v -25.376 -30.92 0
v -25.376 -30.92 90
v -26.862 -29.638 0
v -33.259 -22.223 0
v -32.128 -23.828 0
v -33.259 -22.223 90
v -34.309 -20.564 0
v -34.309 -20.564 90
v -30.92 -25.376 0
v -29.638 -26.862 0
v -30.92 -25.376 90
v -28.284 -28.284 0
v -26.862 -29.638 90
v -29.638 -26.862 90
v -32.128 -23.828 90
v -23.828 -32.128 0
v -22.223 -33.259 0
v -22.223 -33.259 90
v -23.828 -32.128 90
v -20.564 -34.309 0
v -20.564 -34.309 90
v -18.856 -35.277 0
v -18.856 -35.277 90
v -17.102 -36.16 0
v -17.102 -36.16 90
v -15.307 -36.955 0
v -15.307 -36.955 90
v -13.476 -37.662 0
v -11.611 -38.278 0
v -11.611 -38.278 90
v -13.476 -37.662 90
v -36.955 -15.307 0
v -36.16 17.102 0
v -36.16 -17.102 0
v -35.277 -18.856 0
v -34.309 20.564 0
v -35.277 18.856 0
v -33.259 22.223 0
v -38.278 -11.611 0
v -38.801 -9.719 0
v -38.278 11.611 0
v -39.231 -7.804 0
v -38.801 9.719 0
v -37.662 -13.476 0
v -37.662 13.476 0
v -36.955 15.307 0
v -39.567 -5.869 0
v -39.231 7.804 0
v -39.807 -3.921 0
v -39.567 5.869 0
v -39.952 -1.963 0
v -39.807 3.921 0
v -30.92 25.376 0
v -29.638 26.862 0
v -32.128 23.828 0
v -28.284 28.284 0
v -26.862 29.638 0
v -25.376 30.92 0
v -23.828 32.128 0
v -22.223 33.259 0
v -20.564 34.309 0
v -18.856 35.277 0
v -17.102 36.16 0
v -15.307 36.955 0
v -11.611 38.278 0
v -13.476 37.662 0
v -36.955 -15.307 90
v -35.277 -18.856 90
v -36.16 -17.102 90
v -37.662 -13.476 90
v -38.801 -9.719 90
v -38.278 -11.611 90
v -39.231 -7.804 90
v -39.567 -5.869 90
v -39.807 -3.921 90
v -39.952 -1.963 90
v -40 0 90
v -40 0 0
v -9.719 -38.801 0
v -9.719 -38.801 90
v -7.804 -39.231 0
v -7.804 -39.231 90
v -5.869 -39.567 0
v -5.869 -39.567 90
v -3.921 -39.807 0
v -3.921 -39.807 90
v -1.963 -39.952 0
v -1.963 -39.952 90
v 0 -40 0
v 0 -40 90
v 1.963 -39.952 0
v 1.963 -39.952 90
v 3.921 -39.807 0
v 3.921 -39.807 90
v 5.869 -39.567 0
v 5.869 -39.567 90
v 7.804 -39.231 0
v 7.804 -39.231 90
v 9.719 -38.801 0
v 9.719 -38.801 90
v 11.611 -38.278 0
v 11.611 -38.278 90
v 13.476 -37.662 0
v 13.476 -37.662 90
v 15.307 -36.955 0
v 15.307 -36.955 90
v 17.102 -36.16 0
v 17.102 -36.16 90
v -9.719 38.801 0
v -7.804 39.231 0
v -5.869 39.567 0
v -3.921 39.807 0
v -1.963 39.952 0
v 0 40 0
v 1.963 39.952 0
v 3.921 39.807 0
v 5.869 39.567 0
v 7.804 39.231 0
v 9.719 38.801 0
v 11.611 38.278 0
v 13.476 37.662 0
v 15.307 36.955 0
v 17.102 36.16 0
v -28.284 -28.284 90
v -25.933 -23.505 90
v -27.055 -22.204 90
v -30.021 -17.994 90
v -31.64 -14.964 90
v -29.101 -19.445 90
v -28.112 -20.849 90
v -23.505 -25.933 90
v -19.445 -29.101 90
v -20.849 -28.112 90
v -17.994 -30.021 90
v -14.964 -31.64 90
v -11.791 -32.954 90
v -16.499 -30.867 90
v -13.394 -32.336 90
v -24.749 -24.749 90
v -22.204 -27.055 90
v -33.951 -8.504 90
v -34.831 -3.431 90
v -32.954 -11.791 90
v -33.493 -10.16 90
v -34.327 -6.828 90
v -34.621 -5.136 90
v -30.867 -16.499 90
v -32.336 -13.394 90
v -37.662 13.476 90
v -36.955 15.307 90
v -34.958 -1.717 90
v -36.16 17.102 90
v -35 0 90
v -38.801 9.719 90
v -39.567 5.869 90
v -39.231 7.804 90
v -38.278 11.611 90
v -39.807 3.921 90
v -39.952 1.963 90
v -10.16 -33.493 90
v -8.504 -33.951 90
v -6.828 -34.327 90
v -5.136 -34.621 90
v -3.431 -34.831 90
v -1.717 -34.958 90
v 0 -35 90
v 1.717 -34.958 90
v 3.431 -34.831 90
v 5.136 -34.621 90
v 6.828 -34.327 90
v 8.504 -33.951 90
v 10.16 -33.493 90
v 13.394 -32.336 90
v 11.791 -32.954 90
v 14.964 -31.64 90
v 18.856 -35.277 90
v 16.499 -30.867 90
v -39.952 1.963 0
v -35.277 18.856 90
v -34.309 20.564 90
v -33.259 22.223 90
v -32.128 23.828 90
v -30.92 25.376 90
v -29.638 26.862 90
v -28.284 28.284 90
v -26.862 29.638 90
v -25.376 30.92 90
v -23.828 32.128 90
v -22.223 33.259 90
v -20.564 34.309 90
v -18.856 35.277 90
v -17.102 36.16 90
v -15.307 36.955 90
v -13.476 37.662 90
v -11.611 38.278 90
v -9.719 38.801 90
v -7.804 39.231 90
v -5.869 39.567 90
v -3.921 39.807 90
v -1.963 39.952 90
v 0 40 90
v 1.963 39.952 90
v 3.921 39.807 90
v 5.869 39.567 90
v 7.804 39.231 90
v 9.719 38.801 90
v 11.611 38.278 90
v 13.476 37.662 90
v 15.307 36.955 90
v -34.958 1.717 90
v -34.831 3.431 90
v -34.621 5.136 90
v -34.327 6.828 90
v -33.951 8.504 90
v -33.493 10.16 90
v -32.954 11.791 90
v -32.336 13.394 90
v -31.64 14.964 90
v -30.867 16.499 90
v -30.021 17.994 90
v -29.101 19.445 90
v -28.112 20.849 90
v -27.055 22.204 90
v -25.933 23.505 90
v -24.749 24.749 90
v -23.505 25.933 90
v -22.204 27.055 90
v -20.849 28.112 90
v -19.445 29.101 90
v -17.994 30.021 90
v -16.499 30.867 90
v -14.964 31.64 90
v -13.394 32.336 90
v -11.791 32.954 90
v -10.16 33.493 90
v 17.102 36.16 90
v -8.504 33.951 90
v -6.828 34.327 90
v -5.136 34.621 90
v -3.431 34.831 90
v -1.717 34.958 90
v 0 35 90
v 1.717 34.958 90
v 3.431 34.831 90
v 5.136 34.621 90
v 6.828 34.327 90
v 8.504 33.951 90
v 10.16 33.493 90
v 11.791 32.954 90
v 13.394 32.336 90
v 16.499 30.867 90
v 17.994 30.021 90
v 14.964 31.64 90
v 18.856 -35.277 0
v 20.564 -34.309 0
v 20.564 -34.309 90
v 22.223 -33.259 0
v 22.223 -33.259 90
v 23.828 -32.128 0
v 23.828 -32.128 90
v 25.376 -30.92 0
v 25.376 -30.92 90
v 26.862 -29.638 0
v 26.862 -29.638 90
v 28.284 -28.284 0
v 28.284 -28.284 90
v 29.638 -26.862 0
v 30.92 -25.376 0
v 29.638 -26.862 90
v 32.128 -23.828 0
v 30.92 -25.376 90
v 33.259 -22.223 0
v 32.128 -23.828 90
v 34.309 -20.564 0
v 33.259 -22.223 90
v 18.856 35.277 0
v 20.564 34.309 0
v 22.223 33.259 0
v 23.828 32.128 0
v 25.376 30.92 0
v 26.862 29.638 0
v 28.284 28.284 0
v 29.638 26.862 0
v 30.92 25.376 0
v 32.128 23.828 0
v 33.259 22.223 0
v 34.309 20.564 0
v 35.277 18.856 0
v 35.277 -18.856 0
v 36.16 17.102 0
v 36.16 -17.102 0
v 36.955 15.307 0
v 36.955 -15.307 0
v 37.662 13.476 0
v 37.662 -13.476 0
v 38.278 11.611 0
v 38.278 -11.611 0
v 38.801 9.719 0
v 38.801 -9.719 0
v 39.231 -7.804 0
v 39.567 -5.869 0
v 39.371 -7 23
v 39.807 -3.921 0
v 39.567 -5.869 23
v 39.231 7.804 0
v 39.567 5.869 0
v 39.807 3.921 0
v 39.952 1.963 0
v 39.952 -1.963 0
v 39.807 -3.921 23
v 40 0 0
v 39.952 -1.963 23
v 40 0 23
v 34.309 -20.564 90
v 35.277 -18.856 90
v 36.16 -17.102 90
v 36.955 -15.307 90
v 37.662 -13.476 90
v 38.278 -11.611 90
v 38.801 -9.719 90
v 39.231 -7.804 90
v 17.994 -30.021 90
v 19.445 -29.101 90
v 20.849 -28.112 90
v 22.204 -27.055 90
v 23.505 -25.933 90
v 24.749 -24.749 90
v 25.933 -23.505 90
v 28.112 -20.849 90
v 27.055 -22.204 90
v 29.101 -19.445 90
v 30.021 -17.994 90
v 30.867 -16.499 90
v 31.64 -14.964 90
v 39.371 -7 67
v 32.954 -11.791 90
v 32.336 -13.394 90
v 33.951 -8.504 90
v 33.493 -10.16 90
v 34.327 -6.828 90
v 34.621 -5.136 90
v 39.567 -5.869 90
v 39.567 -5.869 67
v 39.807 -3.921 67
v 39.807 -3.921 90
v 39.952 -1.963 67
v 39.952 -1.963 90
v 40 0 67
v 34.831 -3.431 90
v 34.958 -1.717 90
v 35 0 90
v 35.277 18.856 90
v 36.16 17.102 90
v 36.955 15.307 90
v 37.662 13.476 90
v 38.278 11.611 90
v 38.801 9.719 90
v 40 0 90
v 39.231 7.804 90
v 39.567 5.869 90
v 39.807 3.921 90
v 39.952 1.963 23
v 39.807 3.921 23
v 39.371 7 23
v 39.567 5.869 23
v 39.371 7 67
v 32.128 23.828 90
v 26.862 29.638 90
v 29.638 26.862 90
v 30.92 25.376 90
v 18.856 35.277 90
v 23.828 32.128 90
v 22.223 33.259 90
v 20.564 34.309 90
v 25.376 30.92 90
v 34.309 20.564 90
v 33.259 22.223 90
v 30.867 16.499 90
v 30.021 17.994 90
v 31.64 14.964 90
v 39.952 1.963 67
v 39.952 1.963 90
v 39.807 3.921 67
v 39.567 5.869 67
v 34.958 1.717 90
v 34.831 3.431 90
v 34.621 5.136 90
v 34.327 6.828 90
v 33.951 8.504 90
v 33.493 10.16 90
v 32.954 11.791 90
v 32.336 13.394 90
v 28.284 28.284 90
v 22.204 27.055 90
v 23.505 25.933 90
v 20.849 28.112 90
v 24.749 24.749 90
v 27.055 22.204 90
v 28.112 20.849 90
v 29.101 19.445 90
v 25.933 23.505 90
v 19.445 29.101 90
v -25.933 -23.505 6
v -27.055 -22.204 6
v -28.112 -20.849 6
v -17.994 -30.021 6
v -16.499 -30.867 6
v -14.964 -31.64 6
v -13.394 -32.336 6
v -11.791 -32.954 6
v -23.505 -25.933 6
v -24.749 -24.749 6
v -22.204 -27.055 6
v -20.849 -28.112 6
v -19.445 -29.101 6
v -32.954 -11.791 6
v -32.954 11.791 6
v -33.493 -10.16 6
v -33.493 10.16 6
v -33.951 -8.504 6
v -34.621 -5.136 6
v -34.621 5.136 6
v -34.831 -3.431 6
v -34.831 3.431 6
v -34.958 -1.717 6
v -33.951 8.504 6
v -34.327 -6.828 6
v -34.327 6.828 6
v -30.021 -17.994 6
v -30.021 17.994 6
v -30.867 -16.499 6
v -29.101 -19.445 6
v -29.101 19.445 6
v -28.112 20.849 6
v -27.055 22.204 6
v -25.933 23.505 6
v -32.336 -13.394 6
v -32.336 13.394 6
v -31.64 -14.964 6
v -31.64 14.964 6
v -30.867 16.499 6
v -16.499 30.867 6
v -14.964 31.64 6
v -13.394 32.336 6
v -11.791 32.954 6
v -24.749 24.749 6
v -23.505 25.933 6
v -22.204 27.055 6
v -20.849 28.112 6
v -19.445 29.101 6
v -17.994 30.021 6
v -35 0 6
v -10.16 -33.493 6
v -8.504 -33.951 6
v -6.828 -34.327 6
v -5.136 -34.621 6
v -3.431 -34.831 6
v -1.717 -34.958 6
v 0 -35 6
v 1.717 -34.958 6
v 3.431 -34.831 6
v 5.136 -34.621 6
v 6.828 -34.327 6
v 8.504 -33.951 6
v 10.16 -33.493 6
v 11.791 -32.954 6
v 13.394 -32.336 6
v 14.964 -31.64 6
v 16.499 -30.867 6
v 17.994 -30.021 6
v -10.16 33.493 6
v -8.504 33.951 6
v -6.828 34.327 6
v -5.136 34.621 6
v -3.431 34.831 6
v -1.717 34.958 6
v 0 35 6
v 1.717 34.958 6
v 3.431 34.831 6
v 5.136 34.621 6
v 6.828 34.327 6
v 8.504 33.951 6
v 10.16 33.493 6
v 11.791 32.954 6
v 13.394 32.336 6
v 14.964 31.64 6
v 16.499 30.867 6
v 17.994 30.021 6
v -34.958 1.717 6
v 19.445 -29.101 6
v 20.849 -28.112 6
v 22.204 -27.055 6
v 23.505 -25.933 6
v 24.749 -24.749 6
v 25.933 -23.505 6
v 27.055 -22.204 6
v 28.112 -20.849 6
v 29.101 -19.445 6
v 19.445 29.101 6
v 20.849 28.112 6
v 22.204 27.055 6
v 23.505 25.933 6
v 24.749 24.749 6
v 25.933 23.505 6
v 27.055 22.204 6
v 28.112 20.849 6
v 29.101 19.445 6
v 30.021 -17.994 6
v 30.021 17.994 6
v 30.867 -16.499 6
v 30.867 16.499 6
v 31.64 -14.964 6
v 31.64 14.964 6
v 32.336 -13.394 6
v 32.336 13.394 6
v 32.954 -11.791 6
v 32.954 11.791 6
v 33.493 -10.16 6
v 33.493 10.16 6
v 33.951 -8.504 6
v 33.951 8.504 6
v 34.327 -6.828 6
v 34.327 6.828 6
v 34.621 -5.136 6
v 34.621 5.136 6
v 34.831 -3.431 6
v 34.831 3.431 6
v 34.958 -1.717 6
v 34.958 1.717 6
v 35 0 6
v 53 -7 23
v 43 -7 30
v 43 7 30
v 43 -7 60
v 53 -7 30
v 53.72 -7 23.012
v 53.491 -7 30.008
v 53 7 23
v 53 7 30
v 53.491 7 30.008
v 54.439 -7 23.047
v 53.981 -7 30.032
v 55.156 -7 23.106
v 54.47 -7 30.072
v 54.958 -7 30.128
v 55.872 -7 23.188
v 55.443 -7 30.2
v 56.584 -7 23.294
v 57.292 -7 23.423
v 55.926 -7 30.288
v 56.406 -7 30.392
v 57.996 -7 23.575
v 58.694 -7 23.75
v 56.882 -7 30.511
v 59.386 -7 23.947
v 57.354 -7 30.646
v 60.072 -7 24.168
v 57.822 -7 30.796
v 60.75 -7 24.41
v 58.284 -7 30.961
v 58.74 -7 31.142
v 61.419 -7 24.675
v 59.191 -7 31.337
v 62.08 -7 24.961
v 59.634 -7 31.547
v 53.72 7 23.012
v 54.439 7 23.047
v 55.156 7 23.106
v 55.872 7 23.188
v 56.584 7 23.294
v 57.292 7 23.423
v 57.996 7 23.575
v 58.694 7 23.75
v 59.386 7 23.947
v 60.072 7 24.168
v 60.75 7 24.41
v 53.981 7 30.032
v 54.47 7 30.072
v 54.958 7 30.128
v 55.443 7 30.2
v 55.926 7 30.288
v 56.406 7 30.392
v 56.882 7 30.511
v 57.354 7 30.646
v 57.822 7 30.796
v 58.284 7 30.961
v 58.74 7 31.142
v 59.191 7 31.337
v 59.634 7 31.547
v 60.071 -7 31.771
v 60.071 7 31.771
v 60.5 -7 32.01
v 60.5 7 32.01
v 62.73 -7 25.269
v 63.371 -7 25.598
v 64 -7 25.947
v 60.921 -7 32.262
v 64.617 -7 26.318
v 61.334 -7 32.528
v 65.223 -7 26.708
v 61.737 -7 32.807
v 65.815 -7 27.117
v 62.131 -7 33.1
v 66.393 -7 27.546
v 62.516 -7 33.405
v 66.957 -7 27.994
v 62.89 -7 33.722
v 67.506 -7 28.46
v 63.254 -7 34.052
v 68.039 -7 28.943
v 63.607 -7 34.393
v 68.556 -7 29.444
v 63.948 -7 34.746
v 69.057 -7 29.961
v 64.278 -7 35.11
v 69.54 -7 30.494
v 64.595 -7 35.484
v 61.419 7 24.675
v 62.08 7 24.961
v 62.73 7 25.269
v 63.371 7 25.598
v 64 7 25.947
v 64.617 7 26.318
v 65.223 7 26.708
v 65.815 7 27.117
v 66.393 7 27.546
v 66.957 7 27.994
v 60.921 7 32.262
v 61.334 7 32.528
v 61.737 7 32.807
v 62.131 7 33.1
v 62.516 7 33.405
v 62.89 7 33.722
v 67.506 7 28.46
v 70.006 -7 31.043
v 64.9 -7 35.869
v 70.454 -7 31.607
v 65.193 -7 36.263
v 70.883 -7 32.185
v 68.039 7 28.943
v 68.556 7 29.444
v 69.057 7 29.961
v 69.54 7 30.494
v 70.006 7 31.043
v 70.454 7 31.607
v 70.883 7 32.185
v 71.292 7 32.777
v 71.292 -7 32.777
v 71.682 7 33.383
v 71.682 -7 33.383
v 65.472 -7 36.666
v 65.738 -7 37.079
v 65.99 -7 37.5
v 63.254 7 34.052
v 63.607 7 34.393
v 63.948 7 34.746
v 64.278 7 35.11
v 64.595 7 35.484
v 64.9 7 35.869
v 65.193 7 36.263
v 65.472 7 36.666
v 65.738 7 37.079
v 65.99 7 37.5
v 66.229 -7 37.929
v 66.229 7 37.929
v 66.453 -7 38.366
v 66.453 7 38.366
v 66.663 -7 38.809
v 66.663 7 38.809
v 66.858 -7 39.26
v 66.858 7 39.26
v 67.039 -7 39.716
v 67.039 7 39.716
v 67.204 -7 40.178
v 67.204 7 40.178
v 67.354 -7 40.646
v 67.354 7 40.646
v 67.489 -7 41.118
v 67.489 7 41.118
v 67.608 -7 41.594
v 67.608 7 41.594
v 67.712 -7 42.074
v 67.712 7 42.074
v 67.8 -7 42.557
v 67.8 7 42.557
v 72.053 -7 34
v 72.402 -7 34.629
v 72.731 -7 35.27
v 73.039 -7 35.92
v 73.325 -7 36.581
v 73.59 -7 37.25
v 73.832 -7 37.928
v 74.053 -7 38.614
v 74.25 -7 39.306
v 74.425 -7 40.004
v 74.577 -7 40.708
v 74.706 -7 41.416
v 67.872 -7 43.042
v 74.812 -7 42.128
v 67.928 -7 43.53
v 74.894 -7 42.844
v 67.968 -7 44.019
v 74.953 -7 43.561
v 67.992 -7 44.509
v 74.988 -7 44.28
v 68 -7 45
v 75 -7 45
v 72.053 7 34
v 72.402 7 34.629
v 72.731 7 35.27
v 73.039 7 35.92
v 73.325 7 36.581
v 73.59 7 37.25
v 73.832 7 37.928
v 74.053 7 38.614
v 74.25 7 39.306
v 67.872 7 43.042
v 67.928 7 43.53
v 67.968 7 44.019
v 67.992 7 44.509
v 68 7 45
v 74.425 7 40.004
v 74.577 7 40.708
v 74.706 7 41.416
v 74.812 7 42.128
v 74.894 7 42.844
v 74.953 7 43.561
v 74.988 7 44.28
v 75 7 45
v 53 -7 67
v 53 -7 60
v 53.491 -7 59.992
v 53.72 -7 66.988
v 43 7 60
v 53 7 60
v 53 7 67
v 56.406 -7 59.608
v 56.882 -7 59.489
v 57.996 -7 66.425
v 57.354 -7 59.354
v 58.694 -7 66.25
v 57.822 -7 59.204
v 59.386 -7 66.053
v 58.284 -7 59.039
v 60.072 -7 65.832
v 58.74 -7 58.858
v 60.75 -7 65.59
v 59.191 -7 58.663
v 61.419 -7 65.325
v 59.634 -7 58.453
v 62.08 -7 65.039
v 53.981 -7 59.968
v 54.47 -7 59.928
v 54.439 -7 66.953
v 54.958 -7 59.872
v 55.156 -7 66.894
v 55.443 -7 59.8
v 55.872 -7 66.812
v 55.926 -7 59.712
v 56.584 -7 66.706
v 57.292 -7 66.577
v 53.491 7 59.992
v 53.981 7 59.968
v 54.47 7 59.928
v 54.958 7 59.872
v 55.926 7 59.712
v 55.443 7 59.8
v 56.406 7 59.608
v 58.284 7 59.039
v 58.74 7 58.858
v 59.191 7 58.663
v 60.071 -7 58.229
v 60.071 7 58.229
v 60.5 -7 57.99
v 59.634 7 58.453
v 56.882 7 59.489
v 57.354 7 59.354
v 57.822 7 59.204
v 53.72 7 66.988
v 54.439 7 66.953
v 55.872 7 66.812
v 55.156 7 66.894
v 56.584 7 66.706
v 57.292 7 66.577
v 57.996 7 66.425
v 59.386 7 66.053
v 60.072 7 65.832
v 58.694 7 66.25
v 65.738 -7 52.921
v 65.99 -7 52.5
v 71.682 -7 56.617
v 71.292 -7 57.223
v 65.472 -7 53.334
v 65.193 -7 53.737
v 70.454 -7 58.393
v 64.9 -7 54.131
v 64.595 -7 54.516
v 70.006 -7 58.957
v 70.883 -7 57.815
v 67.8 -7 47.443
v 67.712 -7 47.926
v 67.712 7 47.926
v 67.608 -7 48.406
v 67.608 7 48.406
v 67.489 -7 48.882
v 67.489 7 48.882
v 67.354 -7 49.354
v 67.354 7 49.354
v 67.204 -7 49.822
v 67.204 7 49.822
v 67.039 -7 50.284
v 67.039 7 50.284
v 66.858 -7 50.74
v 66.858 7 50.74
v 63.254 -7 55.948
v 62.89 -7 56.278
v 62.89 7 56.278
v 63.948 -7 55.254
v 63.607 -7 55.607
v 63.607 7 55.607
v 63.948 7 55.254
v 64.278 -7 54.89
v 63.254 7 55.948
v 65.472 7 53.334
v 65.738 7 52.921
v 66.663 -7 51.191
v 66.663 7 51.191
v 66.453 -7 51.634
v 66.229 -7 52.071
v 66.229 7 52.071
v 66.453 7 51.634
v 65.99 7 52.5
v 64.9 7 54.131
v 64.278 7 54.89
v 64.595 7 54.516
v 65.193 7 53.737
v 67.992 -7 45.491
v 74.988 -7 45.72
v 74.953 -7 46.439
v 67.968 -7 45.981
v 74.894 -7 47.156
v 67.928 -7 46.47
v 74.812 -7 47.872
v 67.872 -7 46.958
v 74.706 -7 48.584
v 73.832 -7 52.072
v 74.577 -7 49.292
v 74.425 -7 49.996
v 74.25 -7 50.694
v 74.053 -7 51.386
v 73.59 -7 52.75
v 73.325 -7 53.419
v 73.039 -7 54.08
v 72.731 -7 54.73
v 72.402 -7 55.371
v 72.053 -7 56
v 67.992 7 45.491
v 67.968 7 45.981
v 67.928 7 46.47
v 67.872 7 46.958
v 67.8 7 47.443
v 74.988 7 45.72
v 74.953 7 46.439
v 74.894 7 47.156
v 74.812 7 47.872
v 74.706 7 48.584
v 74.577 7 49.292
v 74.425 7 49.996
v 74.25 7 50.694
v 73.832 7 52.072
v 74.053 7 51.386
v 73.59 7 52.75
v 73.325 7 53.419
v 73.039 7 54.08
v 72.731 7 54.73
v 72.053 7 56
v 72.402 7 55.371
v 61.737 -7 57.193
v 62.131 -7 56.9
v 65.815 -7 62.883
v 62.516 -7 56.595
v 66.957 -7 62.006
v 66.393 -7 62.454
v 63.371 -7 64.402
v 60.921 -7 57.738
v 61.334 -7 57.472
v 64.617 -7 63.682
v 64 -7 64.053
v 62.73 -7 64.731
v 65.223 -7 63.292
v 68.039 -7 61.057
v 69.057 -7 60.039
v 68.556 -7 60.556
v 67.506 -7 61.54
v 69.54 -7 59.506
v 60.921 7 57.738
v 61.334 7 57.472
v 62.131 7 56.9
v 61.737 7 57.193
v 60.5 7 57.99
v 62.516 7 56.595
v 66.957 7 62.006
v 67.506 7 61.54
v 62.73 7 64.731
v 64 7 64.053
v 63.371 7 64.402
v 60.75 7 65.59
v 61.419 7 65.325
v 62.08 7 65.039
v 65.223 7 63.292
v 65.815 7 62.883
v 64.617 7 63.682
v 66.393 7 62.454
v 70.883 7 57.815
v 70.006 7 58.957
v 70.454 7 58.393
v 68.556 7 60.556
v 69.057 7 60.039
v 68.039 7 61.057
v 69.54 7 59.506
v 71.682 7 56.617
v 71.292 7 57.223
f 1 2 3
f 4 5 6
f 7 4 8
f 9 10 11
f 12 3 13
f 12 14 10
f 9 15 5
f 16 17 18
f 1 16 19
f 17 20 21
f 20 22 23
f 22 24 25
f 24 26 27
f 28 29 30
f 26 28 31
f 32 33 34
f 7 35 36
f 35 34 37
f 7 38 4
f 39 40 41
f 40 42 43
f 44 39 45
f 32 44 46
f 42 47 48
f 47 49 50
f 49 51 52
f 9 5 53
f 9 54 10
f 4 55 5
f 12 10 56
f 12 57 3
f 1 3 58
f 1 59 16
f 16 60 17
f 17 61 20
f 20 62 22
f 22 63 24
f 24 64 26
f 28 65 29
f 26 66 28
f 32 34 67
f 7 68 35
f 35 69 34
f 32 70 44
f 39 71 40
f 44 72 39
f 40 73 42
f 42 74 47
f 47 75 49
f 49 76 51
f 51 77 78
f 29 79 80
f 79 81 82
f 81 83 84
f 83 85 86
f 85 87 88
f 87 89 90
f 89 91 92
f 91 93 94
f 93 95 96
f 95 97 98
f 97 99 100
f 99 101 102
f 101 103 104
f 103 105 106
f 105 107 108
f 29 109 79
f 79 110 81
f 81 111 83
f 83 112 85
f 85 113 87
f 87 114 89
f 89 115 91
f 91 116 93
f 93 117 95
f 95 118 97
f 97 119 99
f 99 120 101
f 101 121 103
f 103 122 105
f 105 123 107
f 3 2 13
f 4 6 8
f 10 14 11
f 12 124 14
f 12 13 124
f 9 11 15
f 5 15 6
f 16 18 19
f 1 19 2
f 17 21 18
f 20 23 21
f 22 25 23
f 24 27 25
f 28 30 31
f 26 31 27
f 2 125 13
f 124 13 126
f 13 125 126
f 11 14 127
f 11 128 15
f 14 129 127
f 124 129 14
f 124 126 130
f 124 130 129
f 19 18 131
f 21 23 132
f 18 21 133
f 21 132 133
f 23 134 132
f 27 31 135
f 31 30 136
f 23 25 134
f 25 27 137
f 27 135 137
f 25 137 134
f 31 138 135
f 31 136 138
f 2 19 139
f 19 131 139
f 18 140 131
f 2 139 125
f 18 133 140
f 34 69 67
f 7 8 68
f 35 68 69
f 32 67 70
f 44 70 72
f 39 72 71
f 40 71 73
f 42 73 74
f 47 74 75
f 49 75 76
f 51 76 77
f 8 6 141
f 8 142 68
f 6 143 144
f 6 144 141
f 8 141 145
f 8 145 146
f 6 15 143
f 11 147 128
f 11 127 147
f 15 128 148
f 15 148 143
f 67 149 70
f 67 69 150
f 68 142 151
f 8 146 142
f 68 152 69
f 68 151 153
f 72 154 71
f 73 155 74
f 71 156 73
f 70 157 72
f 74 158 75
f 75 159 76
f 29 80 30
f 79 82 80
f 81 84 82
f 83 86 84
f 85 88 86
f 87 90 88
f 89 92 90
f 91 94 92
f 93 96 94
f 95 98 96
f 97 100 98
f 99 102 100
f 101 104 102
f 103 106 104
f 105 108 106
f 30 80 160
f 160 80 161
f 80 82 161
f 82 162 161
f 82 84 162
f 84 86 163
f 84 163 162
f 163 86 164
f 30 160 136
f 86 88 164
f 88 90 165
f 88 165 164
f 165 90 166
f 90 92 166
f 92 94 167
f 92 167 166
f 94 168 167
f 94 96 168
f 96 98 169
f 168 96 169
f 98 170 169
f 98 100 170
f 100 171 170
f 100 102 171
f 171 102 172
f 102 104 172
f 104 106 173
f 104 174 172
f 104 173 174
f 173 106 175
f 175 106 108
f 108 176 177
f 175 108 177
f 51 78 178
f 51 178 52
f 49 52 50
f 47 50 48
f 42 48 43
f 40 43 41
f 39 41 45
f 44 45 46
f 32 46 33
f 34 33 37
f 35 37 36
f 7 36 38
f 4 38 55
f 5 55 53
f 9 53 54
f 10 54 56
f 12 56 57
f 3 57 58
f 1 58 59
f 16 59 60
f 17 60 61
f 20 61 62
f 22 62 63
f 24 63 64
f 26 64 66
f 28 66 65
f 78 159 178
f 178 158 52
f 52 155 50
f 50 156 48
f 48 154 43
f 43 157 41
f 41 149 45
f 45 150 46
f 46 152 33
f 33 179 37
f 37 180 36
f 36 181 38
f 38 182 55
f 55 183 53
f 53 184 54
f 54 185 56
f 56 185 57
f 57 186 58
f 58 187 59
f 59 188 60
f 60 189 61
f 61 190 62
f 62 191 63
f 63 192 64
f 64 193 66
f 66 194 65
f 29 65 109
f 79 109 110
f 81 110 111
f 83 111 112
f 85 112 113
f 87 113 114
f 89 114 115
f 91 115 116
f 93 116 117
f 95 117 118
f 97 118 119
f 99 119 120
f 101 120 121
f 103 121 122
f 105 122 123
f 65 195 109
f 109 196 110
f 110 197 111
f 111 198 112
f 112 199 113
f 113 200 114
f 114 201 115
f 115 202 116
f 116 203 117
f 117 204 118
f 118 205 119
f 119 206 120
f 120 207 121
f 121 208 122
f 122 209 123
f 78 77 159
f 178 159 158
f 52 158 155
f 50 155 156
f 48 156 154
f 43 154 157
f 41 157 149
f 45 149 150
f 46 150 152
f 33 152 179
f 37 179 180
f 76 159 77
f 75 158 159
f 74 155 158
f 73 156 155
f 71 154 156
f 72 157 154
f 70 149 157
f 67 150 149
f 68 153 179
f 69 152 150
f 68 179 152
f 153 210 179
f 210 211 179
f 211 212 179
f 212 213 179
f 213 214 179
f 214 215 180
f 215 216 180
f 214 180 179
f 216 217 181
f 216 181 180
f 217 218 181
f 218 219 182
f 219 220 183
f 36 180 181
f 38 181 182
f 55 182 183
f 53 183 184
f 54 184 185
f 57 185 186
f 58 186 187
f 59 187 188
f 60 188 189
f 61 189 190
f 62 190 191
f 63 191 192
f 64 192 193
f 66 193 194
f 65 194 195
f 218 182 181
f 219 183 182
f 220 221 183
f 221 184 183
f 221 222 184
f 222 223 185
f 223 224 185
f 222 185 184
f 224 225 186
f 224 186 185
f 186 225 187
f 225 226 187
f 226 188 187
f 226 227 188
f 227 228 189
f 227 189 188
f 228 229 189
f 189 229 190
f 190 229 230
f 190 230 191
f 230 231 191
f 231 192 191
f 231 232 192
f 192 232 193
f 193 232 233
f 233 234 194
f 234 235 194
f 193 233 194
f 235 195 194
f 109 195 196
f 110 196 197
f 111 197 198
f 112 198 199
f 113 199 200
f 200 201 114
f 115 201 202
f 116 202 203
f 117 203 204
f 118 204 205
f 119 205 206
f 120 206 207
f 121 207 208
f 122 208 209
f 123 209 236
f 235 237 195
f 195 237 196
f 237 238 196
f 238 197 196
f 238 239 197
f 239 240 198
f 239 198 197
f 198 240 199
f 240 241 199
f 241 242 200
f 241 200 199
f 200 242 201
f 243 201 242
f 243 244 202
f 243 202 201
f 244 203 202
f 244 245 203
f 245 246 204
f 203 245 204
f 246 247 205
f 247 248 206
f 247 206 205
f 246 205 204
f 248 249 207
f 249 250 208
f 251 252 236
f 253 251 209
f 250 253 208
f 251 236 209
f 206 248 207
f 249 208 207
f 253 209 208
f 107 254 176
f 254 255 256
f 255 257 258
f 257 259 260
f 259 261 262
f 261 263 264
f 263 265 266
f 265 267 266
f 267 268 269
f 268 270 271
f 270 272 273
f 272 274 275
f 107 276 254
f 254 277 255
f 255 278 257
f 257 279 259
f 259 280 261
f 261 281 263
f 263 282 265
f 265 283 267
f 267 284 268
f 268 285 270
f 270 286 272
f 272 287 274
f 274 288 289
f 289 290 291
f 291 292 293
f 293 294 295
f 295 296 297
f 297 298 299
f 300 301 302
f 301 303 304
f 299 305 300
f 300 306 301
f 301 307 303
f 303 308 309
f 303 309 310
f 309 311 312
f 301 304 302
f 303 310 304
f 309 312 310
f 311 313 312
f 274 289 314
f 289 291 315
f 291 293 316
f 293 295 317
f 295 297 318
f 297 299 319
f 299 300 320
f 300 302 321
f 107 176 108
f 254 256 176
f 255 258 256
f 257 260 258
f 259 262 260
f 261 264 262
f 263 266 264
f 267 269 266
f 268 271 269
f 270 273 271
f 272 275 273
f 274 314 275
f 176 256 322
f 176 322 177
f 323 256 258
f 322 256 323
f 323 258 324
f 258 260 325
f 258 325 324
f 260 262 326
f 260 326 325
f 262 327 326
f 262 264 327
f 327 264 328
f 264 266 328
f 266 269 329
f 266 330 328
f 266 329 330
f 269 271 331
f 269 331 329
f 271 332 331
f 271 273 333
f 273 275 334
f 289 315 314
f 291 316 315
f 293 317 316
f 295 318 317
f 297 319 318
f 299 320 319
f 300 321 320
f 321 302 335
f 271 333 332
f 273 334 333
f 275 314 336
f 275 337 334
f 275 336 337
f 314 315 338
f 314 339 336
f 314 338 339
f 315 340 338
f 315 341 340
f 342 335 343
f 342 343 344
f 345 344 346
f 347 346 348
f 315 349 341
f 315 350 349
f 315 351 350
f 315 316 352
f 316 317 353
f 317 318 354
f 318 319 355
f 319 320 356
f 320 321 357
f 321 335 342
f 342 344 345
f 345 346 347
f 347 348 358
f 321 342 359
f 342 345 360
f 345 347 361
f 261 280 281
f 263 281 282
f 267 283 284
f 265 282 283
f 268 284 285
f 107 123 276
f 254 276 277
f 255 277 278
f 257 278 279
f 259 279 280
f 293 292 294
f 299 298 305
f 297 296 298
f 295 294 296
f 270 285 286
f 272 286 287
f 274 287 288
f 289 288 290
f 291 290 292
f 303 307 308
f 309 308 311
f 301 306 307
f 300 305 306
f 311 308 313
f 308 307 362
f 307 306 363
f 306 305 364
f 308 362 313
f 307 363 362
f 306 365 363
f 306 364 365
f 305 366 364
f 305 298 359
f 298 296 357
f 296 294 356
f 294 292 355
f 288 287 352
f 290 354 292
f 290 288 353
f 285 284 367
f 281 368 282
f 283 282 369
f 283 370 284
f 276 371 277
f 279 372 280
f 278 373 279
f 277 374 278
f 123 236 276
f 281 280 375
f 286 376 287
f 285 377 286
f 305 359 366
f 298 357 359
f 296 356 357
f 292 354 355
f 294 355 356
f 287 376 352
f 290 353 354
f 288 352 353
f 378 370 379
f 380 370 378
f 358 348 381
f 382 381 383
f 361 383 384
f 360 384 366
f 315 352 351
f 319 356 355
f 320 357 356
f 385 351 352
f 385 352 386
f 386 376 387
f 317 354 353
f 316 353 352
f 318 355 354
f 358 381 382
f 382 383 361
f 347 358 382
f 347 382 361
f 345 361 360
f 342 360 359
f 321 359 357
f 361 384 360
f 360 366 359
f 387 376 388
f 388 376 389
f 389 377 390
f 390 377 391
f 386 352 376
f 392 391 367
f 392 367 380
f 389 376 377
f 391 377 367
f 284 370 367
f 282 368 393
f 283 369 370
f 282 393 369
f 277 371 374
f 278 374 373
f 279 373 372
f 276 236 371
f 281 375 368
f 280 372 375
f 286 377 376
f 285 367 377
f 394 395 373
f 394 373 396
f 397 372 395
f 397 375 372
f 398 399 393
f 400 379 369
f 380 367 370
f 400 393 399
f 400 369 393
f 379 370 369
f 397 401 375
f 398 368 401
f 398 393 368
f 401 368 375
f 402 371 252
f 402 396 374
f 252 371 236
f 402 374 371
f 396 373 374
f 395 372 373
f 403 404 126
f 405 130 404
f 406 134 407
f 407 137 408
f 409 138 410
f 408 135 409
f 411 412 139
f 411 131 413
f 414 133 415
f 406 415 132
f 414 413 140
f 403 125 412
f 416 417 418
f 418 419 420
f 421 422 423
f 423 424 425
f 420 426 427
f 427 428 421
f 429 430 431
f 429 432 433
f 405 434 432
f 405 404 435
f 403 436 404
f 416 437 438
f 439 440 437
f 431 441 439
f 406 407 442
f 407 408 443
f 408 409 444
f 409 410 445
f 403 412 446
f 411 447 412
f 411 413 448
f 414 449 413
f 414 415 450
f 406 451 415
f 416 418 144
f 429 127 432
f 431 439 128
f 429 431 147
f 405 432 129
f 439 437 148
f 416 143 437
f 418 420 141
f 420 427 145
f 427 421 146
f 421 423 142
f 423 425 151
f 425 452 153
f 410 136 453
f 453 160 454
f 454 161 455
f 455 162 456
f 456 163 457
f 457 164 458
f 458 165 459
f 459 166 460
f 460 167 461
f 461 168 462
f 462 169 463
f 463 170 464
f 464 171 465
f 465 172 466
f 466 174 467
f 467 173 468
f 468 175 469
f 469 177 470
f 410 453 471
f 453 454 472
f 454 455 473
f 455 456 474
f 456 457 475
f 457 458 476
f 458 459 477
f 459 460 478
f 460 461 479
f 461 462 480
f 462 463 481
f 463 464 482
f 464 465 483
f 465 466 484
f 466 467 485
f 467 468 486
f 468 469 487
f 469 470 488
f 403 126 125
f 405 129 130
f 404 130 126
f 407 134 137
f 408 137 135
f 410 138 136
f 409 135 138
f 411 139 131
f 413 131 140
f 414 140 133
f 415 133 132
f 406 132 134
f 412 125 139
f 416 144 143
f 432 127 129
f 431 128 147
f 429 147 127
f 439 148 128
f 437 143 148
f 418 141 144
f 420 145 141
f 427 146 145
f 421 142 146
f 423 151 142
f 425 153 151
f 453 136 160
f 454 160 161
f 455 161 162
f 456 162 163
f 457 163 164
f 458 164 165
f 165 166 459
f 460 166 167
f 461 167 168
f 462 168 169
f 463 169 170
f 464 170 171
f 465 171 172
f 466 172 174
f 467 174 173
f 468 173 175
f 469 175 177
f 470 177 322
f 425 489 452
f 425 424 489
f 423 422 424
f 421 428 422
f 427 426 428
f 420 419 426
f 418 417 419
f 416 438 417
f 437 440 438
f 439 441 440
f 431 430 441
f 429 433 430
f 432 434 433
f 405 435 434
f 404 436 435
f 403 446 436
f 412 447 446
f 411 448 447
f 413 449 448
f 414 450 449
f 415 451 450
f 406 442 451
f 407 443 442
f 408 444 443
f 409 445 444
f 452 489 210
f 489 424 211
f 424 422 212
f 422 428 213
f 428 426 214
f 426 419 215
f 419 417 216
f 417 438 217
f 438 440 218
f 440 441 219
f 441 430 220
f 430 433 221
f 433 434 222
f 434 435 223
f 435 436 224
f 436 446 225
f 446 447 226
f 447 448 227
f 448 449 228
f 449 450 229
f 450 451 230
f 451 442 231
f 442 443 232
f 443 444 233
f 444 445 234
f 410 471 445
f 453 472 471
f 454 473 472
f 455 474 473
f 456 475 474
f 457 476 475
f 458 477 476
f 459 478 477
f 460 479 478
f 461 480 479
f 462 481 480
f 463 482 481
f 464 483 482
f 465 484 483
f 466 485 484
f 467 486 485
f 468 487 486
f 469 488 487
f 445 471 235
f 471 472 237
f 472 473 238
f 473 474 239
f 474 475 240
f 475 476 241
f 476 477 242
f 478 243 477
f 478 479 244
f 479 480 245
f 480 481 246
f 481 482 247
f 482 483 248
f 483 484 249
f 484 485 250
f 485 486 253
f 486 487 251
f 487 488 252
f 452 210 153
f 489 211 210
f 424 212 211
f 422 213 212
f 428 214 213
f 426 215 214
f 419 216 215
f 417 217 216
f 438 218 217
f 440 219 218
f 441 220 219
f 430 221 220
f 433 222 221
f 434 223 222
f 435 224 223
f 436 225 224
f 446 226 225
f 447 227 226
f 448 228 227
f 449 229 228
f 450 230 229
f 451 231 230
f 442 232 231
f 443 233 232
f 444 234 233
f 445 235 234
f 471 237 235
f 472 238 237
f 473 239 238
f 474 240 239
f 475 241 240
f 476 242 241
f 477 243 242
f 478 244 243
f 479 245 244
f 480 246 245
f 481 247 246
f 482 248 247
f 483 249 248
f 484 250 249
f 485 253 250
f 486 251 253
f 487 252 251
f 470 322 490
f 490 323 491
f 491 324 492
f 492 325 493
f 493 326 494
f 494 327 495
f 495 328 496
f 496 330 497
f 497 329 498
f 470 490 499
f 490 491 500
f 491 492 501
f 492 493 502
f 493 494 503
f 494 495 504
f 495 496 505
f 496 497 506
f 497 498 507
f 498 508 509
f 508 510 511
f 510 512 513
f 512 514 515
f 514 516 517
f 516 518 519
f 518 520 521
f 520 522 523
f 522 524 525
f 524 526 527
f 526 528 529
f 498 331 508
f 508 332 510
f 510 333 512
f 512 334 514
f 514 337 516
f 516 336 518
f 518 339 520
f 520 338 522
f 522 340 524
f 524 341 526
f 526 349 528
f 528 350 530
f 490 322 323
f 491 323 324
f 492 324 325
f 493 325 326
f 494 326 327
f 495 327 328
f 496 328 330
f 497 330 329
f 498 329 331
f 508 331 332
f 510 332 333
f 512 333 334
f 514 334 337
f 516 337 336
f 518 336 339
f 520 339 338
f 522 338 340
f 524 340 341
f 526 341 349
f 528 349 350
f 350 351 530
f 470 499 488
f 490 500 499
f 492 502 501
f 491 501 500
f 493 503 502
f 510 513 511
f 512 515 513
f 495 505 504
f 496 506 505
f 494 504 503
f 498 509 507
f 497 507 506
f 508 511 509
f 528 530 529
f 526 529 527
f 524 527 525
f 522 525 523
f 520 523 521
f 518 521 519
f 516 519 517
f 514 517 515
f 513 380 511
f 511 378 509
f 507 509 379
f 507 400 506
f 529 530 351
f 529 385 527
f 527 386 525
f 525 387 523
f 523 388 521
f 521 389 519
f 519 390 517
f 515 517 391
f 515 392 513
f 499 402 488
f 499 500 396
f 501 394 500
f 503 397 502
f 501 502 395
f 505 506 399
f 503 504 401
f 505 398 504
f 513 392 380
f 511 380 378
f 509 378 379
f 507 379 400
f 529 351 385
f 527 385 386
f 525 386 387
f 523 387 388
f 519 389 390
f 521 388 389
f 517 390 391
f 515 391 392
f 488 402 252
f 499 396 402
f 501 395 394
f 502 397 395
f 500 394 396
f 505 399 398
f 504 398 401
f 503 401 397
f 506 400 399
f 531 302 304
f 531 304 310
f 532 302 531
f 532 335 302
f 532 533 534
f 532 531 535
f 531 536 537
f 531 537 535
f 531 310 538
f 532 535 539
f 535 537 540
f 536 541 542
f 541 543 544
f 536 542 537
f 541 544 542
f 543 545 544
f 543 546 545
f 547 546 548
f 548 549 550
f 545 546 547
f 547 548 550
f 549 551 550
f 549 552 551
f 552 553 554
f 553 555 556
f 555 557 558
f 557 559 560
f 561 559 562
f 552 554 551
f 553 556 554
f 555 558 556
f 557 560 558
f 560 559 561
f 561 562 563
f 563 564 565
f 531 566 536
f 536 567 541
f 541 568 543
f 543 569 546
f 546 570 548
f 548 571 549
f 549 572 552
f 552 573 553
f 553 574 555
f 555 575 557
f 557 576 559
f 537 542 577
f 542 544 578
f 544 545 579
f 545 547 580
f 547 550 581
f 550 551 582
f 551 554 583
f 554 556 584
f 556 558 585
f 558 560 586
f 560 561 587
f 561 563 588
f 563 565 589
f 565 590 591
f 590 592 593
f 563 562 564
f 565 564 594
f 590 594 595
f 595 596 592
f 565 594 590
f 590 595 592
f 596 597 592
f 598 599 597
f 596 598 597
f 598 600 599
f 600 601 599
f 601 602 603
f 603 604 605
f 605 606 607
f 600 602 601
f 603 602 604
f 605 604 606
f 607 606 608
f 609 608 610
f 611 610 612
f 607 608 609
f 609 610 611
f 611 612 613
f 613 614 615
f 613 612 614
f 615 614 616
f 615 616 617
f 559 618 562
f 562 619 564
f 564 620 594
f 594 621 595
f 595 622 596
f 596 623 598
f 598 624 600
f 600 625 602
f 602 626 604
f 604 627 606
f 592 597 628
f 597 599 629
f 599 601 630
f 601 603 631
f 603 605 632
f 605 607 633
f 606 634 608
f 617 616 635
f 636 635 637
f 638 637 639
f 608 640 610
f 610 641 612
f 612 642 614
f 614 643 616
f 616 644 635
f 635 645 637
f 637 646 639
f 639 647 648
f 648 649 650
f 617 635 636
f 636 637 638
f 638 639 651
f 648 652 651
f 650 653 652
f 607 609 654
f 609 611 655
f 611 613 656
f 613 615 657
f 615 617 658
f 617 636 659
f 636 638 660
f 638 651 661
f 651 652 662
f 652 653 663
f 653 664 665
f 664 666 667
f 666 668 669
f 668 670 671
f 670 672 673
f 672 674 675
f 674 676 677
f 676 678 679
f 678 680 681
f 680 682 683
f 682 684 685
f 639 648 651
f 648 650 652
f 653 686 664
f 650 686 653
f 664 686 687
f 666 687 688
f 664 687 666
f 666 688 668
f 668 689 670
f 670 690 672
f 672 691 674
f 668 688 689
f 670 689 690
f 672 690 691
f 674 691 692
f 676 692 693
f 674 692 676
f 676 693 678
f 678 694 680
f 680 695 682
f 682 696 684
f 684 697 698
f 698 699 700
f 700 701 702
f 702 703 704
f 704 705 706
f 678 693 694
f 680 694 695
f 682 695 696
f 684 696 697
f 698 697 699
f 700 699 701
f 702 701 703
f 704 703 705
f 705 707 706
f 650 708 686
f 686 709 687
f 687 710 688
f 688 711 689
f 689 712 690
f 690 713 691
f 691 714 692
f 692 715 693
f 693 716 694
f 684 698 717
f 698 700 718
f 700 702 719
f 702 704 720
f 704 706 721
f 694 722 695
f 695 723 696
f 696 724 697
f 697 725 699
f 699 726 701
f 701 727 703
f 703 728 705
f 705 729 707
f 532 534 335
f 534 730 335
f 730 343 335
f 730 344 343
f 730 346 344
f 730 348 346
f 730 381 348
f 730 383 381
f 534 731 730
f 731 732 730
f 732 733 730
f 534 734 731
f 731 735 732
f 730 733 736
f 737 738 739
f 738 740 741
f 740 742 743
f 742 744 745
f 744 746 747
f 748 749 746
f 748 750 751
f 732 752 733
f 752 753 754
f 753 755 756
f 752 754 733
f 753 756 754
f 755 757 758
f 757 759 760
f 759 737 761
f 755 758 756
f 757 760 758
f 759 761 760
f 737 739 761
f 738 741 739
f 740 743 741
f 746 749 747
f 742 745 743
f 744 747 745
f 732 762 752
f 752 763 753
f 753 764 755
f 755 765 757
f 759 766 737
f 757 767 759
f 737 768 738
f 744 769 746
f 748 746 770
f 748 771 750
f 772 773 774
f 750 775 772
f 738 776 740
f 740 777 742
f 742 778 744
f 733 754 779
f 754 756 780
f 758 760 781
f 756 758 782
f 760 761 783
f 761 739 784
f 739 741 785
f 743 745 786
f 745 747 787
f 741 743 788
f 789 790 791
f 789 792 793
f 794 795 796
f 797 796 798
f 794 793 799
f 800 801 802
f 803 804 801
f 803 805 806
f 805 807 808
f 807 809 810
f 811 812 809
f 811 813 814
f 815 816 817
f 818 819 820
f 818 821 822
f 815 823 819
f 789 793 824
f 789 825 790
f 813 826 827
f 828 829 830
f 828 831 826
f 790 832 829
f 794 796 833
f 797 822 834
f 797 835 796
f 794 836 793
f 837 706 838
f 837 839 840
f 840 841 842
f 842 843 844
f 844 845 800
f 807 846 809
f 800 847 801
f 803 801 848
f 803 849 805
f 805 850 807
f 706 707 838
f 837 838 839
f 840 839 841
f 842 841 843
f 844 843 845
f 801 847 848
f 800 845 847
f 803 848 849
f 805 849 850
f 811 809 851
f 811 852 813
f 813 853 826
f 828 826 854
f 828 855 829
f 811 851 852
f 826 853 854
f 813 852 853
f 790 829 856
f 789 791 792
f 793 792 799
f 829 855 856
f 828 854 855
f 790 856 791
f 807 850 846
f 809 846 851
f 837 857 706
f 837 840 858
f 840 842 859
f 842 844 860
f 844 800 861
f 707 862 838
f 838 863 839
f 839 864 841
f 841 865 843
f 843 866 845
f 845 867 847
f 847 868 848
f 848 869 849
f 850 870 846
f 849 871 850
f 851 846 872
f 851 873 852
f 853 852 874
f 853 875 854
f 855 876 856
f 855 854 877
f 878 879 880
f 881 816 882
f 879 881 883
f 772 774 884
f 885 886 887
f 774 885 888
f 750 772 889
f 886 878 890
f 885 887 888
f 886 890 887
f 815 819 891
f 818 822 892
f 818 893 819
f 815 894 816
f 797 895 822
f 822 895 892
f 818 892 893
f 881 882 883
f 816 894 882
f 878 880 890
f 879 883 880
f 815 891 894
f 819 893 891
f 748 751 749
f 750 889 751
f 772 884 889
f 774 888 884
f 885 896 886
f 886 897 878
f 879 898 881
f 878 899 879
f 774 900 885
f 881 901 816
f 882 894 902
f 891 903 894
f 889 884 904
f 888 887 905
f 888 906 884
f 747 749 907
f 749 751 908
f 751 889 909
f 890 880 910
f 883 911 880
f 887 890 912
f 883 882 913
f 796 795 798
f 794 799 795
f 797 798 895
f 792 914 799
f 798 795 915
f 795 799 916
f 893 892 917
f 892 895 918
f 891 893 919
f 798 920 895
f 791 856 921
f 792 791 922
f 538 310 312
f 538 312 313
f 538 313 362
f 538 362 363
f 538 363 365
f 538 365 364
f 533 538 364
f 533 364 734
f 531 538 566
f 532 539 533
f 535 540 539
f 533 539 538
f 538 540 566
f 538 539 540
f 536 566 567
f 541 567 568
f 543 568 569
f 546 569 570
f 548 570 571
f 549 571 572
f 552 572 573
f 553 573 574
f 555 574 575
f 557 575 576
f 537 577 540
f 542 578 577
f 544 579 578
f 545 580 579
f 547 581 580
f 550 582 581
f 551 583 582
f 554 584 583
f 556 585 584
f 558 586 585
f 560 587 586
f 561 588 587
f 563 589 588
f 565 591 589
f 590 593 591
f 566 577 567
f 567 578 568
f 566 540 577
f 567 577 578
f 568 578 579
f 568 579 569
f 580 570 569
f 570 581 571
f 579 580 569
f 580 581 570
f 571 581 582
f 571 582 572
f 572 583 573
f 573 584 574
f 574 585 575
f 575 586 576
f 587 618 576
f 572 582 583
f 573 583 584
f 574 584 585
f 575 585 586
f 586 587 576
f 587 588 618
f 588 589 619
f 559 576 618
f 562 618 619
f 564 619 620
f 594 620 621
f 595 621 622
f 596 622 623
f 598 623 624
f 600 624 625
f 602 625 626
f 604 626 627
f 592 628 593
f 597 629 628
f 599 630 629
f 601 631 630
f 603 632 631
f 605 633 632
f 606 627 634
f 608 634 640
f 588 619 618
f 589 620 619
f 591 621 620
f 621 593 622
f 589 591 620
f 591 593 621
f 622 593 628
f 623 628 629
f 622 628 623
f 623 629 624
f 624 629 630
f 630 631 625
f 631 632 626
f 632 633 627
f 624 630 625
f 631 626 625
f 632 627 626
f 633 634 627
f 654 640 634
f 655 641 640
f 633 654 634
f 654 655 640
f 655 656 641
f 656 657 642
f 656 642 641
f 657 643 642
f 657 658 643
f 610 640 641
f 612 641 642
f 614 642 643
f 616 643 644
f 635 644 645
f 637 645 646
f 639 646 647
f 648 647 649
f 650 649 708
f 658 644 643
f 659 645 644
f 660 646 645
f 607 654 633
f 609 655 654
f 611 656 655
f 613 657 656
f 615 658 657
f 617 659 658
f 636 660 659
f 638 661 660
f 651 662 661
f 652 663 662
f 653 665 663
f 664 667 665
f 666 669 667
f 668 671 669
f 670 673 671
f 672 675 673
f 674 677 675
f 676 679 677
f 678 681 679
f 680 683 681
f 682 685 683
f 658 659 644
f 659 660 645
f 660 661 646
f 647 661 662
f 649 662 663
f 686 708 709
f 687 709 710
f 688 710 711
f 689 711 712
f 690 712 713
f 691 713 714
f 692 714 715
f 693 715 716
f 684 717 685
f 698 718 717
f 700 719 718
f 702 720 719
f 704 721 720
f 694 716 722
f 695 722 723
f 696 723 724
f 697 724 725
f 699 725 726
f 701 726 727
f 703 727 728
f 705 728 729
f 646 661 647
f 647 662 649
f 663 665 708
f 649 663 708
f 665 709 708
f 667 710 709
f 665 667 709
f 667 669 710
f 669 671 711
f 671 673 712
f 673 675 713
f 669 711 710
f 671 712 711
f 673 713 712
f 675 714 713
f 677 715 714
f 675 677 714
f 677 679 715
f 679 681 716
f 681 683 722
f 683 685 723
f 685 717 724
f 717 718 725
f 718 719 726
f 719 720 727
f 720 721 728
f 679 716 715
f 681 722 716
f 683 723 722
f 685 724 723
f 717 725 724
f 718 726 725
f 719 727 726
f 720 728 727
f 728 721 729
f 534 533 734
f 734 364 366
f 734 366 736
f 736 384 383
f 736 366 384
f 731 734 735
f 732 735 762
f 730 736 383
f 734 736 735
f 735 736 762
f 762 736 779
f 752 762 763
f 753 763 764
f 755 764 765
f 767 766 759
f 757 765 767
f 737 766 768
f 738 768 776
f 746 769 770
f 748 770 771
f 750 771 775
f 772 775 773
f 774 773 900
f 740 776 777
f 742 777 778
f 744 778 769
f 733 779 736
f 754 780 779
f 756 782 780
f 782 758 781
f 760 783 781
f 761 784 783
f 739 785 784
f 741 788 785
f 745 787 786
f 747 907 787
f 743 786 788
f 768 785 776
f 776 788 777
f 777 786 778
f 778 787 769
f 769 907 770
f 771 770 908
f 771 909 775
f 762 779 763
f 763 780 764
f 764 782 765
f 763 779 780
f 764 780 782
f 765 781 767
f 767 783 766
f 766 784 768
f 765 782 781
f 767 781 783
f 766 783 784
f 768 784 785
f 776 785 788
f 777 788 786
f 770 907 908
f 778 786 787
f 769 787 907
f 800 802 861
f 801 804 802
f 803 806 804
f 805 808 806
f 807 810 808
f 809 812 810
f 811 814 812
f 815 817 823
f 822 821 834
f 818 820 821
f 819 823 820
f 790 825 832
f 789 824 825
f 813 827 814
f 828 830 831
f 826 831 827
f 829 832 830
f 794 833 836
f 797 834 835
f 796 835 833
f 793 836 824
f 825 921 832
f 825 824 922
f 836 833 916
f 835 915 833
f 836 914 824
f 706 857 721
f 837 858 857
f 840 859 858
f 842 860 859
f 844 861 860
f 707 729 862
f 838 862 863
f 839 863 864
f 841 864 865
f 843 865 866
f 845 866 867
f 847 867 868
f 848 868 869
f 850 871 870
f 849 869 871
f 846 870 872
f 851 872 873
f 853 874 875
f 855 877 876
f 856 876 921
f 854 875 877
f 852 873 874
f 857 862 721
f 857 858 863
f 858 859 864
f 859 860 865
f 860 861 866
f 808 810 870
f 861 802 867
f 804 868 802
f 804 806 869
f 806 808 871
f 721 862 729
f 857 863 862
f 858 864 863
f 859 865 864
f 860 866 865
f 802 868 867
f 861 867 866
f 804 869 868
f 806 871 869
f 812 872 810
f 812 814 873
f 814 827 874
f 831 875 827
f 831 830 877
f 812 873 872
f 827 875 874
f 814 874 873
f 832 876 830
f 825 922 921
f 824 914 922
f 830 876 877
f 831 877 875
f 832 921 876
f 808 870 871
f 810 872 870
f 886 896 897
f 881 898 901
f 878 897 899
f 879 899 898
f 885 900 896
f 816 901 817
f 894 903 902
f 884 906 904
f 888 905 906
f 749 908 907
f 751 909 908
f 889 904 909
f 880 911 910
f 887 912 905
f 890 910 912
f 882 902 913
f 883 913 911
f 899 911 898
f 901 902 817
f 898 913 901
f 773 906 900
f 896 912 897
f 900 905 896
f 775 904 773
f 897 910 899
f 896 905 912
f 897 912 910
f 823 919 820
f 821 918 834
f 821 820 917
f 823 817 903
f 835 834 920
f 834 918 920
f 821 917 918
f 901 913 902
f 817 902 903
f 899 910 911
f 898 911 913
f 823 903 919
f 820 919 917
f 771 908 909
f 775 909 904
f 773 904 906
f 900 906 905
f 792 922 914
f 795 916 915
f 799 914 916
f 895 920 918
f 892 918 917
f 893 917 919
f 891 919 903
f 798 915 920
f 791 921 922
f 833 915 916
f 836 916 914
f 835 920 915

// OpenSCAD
$fn = 128;

mug_outer_radius = 40;
mug_inner_radius = 35;
mug_height       = 90;
bottom_thickness = 6;

handle_opening_width  = 25;
handle_opening_height = 30;
handle_wall           = 7;
handle_depth          = 14;
handle_center_z       = mug_height / 2;

epsilon = 0.2;

module mug_body() {
    difference() {
        cylinder(r = mug_outer_radius, h = mug_height);

        translate([0, 0, bottom_thickness])
            cylinder(
                r = mug_inner_radius,
                h = mug_height - bottom_thickness + epsilon
            );
    }
}

module d_profile(x_left, arc_center_x, radius, segments = 96) {
    polygon(points = concat(
        [[x_left, -radius]],
        [
            for (i = [0 : segments])
                [
                    arc_center_x
                        + radius * cos(-90 + 180 * i / segments),
                    radius * sin(-90 + 180 * i / segments)
                ]
        ],
        [[x_left, radius]]
    ));
}

module mug_handle() {
    opening_radius = handle_opening_height / 2;
    opening_left_x = mug_outer_radius + 3;
    arc_center_x   = opening_left_x
                   + handle_opening_width
                   - opening_radius;

    outer_radius = opening_radius + handle_wall;
    outer_left_x = opening_left_x - handle_wall;

    translate([0, 0, handle_center_z])
        rotate([90, 0, 0])
            linear_extrude(
                height = handle_depth,
                center = true,
                convexity = 10
            )
                difference() {
                    d_profile(
                        outer_left_x,
                        arc_center_x,
                        outer_radius
                    );

                    d_profile(
                        opening_left_x,
                        arc_center_x,
                        opening_radius
                    );
                }
}

union() {
    mug_body();
    mug_handle();
}
